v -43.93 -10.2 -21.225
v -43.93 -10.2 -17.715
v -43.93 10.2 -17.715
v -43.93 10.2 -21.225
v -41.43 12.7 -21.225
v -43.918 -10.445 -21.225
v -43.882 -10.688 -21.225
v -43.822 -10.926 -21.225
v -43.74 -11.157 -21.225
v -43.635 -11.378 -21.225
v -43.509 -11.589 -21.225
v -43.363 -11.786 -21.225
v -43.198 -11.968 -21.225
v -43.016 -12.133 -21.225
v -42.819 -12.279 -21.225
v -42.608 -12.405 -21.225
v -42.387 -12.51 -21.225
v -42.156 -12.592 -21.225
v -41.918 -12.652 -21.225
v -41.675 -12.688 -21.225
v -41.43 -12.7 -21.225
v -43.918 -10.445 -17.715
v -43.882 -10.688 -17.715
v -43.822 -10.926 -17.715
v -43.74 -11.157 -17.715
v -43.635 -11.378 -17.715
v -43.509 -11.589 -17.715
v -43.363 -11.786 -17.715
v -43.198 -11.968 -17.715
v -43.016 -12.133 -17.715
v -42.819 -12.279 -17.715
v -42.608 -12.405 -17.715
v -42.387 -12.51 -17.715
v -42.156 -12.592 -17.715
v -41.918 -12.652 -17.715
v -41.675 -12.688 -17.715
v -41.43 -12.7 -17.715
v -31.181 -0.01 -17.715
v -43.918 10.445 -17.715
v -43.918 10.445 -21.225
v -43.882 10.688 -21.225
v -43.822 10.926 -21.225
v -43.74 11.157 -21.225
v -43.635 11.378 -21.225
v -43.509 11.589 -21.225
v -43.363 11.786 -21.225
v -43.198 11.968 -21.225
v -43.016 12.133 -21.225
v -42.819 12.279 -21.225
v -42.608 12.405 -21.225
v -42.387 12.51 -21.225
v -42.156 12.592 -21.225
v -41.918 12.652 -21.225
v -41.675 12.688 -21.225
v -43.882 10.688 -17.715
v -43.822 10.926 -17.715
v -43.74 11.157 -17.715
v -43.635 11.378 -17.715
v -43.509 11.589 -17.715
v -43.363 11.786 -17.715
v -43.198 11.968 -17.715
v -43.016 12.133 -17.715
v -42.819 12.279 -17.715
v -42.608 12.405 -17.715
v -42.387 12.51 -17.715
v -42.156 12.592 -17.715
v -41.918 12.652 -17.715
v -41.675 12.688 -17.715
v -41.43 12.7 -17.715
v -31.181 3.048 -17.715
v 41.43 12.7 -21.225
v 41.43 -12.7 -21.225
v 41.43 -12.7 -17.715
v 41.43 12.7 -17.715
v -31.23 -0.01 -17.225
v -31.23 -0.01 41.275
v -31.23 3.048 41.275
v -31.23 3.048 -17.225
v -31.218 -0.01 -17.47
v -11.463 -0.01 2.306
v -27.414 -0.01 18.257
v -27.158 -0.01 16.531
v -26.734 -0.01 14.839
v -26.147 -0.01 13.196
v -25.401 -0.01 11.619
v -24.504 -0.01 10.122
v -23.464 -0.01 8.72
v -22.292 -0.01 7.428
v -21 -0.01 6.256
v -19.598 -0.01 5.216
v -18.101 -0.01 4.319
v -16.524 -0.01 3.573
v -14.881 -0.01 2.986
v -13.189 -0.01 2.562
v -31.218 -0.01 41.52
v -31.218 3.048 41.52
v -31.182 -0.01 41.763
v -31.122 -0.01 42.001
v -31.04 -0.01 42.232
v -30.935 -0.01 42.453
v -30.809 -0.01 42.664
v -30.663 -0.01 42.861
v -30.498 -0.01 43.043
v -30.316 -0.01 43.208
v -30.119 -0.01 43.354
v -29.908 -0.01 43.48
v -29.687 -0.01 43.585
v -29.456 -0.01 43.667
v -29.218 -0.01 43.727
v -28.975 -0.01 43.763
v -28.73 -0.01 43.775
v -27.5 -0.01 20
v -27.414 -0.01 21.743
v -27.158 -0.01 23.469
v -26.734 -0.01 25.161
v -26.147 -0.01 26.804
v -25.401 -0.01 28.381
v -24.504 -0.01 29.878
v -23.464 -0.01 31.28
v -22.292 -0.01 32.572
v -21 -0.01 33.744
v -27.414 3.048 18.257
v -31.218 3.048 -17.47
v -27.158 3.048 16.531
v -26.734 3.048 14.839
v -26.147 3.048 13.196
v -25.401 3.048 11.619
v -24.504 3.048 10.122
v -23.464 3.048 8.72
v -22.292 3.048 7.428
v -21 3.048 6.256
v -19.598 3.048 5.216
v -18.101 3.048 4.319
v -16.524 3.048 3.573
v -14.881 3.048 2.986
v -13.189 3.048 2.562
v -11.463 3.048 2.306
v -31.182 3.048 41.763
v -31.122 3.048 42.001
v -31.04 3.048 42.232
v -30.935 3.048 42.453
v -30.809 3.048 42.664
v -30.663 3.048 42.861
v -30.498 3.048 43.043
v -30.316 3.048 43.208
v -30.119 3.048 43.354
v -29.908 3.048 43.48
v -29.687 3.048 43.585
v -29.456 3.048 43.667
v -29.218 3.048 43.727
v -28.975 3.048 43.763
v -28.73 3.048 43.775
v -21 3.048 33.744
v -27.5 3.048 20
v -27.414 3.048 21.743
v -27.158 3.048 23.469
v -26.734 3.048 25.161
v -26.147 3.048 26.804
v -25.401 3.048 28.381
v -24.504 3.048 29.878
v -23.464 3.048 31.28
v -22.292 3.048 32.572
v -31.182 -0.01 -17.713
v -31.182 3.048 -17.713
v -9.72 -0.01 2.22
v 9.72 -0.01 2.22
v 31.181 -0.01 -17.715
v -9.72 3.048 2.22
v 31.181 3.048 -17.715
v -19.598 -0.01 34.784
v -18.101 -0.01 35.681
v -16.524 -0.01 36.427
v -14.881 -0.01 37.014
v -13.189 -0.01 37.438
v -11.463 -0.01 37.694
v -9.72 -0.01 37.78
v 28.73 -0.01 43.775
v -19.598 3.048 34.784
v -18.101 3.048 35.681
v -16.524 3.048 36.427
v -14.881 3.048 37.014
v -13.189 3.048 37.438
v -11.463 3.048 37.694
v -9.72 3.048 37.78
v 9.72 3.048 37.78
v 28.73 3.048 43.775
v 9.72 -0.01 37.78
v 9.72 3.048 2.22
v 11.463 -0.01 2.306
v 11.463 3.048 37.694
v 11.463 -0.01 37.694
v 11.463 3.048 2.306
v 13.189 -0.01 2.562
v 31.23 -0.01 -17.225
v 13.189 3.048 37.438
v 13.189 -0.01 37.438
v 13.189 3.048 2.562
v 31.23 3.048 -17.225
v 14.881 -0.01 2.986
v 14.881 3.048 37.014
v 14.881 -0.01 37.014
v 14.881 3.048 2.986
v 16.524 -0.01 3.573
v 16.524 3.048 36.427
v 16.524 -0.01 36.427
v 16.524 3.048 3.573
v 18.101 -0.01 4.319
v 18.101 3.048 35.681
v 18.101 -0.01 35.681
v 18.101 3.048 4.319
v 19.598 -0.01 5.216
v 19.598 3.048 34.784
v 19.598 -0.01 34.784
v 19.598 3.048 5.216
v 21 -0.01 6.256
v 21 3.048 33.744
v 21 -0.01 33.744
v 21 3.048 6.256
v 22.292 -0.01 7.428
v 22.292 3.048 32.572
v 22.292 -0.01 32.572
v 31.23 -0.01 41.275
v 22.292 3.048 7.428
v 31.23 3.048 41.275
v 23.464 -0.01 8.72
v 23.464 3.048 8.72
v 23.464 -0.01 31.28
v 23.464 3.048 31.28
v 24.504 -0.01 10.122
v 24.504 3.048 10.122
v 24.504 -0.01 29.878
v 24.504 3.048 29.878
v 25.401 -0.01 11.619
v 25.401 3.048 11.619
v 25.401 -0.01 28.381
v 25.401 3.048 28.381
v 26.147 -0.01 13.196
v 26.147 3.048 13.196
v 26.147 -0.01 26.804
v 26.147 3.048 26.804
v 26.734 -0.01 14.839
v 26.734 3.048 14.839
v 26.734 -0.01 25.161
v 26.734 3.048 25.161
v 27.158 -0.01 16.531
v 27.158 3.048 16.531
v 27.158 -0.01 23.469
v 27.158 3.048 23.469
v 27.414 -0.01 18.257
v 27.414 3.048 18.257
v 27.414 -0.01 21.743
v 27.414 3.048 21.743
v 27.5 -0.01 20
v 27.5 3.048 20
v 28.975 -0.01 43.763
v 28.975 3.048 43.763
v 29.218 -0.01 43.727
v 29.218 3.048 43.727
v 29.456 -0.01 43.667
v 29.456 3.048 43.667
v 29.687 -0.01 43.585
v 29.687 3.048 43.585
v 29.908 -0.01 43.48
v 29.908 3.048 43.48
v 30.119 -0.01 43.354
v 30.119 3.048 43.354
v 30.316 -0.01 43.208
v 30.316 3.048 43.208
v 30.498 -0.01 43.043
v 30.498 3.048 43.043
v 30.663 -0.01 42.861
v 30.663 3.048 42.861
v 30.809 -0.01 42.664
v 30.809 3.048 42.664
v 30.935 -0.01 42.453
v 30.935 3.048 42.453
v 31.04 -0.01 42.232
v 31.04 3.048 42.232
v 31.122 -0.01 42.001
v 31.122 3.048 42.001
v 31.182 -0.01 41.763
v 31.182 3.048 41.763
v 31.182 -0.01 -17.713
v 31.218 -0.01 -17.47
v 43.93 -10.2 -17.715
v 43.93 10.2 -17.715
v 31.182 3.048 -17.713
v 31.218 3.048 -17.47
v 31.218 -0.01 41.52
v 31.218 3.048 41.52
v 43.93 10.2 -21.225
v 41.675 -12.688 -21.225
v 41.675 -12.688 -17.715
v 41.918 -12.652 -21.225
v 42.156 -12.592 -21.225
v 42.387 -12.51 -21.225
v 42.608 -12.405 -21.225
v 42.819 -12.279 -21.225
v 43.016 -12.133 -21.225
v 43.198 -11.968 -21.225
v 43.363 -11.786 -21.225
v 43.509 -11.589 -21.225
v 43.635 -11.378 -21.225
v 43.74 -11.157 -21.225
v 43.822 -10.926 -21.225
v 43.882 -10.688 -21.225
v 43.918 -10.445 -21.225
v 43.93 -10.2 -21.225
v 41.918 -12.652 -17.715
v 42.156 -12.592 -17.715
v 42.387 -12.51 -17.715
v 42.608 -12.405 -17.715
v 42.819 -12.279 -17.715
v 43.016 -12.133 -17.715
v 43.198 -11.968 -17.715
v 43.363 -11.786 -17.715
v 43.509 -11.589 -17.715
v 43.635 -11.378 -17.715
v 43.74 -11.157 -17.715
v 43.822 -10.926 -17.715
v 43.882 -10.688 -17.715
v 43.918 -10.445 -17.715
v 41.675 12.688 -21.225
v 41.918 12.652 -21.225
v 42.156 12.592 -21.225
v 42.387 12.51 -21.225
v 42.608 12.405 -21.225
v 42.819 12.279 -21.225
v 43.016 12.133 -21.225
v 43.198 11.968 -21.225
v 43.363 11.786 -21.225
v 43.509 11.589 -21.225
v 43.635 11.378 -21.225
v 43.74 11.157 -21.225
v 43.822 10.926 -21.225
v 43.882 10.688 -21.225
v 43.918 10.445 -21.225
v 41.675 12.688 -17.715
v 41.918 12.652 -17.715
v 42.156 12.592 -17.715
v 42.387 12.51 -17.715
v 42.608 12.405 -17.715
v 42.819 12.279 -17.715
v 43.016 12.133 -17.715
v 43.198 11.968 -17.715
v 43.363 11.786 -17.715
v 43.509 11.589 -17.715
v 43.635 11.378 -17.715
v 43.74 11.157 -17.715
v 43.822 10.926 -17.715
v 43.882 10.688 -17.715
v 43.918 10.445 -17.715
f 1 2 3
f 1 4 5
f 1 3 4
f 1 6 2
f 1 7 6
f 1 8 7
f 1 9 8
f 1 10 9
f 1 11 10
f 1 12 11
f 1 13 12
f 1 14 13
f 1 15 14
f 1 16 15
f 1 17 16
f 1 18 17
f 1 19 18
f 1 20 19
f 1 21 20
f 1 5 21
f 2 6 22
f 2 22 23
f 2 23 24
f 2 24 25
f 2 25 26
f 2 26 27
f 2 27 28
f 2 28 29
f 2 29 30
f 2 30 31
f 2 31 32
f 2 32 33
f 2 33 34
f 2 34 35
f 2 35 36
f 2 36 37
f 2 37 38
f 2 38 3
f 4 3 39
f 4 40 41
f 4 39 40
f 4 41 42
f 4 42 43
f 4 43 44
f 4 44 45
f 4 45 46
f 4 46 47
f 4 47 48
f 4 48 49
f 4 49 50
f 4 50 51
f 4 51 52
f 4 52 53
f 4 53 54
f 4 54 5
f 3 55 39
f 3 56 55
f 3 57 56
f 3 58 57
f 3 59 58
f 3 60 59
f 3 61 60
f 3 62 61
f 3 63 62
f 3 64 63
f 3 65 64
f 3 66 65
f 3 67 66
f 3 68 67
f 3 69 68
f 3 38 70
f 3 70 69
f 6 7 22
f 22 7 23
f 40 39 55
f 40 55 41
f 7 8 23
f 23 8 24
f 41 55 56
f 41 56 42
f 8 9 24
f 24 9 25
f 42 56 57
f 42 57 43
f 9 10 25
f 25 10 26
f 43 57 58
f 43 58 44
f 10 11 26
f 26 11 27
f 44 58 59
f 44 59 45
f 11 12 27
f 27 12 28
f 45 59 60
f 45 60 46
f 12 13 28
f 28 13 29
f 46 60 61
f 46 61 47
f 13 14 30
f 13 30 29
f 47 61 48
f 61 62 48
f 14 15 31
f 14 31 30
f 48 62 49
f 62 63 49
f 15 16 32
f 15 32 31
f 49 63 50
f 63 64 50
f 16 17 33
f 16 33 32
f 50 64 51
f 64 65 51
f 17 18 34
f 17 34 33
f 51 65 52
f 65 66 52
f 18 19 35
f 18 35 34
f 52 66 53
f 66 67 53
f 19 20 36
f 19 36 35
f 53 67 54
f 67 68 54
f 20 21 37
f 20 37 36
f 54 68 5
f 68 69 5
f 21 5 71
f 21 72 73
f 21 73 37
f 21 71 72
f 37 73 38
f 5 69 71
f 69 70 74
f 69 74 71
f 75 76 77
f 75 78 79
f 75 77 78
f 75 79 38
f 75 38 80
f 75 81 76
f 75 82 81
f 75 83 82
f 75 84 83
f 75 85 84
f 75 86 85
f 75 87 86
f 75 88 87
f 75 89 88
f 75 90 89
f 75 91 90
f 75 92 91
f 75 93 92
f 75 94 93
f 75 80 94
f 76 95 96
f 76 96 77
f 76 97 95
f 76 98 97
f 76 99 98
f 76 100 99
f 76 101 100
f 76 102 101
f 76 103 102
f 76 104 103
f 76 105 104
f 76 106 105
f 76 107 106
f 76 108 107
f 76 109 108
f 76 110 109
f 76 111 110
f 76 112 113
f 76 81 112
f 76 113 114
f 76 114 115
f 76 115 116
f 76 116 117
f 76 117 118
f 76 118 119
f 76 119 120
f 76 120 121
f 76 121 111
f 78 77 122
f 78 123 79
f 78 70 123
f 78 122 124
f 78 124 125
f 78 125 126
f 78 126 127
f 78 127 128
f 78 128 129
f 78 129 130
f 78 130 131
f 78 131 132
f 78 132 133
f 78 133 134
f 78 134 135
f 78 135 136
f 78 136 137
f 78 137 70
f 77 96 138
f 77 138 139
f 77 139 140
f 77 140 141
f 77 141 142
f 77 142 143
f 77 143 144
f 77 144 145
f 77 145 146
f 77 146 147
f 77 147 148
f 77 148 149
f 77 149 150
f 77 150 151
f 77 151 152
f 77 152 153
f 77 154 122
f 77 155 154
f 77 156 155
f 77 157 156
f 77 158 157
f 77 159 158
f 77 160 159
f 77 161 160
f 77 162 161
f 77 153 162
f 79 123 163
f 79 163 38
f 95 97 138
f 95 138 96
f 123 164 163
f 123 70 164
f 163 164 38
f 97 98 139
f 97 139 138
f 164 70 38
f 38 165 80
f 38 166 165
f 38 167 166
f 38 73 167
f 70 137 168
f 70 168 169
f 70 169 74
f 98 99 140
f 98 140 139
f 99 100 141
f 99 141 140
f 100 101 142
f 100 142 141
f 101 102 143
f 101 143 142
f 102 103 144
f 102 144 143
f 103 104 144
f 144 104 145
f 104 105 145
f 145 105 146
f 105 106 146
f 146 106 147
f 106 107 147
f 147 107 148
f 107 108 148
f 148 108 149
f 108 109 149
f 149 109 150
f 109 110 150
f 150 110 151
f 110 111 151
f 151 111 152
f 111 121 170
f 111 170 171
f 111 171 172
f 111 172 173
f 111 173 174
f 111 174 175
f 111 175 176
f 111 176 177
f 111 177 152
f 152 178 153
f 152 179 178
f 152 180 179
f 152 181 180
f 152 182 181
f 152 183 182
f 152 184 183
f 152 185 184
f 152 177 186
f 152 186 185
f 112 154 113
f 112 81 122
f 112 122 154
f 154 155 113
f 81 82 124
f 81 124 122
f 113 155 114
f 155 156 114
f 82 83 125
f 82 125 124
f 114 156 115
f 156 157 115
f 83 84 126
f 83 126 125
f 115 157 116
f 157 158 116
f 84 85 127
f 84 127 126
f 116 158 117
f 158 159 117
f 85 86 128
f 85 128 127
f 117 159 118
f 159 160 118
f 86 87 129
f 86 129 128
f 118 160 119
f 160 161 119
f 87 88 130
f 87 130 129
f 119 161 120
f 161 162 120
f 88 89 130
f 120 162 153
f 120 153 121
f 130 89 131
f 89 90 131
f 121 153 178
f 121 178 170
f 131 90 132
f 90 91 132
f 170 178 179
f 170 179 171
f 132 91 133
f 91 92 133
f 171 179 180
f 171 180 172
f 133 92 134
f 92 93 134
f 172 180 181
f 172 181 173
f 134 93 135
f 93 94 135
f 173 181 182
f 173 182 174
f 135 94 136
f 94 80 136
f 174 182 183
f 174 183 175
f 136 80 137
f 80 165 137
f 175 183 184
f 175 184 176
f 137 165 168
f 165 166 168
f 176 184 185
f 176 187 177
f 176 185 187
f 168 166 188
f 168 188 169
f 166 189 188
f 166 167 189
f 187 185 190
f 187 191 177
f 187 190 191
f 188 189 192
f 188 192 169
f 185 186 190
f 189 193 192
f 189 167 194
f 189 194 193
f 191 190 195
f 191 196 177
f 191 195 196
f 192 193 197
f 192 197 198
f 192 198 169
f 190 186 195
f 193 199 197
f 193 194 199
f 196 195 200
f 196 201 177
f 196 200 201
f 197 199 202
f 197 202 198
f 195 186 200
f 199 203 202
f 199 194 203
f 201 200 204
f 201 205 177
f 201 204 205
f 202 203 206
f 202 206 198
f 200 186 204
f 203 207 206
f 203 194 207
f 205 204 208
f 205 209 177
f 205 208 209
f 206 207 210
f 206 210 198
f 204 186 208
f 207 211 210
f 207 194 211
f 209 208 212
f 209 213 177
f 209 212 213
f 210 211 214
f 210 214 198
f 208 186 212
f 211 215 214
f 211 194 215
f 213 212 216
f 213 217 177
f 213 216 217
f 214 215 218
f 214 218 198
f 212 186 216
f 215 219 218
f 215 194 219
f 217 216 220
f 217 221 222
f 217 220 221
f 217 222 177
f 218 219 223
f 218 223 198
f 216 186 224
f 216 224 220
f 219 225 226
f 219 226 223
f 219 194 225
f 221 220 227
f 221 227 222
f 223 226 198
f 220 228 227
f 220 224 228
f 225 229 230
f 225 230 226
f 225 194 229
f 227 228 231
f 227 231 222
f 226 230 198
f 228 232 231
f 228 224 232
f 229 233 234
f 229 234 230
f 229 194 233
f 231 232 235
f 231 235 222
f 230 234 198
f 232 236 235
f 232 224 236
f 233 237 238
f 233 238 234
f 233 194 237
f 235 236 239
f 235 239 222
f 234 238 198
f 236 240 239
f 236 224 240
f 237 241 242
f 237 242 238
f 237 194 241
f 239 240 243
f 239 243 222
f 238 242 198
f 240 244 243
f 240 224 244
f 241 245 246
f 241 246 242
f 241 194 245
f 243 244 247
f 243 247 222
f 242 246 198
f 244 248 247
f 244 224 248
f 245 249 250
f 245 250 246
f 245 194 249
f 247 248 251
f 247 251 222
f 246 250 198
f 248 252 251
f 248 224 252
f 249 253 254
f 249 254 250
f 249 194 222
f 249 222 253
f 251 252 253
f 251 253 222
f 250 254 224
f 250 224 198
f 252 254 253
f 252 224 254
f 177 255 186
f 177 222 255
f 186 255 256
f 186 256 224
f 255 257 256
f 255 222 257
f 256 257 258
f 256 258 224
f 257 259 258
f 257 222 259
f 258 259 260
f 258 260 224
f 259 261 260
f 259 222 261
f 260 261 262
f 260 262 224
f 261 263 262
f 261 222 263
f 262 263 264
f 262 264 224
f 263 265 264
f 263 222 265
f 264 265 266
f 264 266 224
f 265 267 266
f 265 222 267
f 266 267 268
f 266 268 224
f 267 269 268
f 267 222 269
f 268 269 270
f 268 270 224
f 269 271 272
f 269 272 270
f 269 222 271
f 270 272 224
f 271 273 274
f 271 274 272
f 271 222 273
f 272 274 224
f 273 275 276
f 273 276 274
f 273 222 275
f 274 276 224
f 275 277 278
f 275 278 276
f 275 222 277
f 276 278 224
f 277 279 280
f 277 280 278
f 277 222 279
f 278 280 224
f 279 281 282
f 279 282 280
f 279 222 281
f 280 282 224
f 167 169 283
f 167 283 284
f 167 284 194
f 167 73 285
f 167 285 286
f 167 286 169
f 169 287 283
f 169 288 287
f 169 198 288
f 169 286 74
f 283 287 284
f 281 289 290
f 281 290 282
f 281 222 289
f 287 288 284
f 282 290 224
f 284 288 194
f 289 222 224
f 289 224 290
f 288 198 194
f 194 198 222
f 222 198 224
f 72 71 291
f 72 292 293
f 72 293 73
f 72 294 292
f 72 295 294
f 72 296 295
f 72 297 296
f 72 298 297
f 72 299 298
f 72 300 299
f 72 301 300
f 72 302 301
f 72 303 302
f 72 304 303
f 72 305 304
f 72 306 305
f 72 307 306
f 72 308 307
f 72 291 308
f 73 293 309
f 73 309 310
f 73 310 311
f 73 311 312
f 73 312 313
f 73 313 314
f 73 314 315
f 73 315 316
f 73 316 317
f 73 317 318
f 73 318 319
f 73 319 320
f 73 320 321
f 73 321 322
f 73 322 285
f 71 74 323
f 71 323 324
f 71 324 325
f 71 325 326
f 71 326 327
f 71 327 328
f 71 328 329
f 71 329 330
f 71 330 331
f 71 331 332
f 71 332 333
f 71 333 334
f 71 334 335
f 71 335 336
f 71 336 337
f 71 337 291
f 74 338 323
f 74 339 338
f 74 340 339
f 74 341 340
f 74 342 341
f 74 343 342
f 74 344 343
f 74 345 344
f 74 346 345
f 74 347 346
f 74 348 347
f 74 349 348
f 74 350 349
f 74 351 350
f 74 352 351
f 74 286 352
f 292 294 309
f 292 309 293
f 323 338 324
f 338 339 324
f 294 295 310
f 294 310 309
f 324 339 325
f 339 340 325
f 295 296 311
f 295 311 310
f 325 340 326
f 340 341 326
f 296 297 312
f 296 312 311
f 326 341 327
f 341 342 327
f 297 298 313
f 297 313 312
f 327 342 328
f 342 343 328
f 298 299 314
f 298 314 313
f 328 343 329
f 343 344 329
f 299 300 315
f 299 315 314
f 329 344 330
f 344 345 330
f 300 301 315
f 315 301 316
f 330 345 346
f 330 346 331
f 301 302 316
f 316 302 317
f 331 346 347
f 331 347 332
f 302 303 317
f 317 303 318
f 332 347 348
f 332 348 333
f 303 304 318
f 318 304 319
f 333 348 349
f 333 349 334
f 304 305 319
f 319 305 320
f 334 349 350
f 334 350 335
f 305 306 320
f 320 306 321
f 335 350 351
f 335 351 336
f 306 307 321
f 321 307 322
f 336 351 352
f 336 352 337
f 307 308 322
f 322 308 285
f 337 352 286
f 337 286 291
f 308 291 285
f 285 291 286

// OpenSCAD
//
// 1-piece handle, insert from bottom
//

e = 0.1;
mm = 25.4;
$fn = 64;

// slot
slot_len = 65-0.1*mm;
slot_wid = 0.125*mm - 0.005*mm;

foam_thk = (7/8)*mm;		/* thickness of tray bottom plus foam */
headroom = 2.5*mm;		/* space above foam to box lid */

bot_len = slot_len + 1*mm;
bot_wid = 1*mm;
bot_thk = 3.5;

handle_open_hgt = 1.4*mm;
//handle_open_wid = 3.5*mm;
handle_open_wid = 55;

rnd = 5;			/* round edge dia */

// generate a cube rounded in x, y using minkowski
// origin at xyz=0
module rounded_cube( dx, dy, dz, dia) {
     translate( [dia/2, dia/2, 0]) {
       	  minkowski() {
	       cube( [dx-dia, dy-dia, .01]);
	       cylinder( h=dz, d=dia);
	  }
     }
}

module bottom_base() {
     translate( [-bot_len/2, -bot_wid/2, -foam_thk+1]) {
	  rounded_cube( bot_len, bot_wid, bot_thk, rnd);
     }
     rotate( [90, 0, 0])
	  translate( [-slot_len/2, -foam_thk+bot_thk-1, -slot_wid])
	  rounded_cube( slot_len, headroom, slot_wid, rnd);
}

// draw handle opening from center
handle_cut_offset = 5;
module handle_opening() {
     translate( [-handle_open_wid/2+handle_open_hgt/2, 0, -handle_cut_offset])
	  cylinder( h=handle_cut_offset*2, d=handle_open_hgt);
     translate( [handle_open_wid/2-handle_open_hgt/2, 0, -handle_cut_offset])
	  cylinder( h=handle_cut_offset*2, d=handle_open_hgt);
     translate( [-handle_open_wid/2+handle_open_hgt/2, -handle_open_hgt/2, -handle_cut_offset])
	  cube( [handle_open_wid-handle_open_hgt, handle_open_hgt, 2*handle_cut_offset]);
}

module bottom() {
     difference() {
	  bottom_base();
	  rotate( [90, 0, 0]) {
	       translate( [0, 20, 0])
		    handle_opening();
	  }
     }
}

bottom();
